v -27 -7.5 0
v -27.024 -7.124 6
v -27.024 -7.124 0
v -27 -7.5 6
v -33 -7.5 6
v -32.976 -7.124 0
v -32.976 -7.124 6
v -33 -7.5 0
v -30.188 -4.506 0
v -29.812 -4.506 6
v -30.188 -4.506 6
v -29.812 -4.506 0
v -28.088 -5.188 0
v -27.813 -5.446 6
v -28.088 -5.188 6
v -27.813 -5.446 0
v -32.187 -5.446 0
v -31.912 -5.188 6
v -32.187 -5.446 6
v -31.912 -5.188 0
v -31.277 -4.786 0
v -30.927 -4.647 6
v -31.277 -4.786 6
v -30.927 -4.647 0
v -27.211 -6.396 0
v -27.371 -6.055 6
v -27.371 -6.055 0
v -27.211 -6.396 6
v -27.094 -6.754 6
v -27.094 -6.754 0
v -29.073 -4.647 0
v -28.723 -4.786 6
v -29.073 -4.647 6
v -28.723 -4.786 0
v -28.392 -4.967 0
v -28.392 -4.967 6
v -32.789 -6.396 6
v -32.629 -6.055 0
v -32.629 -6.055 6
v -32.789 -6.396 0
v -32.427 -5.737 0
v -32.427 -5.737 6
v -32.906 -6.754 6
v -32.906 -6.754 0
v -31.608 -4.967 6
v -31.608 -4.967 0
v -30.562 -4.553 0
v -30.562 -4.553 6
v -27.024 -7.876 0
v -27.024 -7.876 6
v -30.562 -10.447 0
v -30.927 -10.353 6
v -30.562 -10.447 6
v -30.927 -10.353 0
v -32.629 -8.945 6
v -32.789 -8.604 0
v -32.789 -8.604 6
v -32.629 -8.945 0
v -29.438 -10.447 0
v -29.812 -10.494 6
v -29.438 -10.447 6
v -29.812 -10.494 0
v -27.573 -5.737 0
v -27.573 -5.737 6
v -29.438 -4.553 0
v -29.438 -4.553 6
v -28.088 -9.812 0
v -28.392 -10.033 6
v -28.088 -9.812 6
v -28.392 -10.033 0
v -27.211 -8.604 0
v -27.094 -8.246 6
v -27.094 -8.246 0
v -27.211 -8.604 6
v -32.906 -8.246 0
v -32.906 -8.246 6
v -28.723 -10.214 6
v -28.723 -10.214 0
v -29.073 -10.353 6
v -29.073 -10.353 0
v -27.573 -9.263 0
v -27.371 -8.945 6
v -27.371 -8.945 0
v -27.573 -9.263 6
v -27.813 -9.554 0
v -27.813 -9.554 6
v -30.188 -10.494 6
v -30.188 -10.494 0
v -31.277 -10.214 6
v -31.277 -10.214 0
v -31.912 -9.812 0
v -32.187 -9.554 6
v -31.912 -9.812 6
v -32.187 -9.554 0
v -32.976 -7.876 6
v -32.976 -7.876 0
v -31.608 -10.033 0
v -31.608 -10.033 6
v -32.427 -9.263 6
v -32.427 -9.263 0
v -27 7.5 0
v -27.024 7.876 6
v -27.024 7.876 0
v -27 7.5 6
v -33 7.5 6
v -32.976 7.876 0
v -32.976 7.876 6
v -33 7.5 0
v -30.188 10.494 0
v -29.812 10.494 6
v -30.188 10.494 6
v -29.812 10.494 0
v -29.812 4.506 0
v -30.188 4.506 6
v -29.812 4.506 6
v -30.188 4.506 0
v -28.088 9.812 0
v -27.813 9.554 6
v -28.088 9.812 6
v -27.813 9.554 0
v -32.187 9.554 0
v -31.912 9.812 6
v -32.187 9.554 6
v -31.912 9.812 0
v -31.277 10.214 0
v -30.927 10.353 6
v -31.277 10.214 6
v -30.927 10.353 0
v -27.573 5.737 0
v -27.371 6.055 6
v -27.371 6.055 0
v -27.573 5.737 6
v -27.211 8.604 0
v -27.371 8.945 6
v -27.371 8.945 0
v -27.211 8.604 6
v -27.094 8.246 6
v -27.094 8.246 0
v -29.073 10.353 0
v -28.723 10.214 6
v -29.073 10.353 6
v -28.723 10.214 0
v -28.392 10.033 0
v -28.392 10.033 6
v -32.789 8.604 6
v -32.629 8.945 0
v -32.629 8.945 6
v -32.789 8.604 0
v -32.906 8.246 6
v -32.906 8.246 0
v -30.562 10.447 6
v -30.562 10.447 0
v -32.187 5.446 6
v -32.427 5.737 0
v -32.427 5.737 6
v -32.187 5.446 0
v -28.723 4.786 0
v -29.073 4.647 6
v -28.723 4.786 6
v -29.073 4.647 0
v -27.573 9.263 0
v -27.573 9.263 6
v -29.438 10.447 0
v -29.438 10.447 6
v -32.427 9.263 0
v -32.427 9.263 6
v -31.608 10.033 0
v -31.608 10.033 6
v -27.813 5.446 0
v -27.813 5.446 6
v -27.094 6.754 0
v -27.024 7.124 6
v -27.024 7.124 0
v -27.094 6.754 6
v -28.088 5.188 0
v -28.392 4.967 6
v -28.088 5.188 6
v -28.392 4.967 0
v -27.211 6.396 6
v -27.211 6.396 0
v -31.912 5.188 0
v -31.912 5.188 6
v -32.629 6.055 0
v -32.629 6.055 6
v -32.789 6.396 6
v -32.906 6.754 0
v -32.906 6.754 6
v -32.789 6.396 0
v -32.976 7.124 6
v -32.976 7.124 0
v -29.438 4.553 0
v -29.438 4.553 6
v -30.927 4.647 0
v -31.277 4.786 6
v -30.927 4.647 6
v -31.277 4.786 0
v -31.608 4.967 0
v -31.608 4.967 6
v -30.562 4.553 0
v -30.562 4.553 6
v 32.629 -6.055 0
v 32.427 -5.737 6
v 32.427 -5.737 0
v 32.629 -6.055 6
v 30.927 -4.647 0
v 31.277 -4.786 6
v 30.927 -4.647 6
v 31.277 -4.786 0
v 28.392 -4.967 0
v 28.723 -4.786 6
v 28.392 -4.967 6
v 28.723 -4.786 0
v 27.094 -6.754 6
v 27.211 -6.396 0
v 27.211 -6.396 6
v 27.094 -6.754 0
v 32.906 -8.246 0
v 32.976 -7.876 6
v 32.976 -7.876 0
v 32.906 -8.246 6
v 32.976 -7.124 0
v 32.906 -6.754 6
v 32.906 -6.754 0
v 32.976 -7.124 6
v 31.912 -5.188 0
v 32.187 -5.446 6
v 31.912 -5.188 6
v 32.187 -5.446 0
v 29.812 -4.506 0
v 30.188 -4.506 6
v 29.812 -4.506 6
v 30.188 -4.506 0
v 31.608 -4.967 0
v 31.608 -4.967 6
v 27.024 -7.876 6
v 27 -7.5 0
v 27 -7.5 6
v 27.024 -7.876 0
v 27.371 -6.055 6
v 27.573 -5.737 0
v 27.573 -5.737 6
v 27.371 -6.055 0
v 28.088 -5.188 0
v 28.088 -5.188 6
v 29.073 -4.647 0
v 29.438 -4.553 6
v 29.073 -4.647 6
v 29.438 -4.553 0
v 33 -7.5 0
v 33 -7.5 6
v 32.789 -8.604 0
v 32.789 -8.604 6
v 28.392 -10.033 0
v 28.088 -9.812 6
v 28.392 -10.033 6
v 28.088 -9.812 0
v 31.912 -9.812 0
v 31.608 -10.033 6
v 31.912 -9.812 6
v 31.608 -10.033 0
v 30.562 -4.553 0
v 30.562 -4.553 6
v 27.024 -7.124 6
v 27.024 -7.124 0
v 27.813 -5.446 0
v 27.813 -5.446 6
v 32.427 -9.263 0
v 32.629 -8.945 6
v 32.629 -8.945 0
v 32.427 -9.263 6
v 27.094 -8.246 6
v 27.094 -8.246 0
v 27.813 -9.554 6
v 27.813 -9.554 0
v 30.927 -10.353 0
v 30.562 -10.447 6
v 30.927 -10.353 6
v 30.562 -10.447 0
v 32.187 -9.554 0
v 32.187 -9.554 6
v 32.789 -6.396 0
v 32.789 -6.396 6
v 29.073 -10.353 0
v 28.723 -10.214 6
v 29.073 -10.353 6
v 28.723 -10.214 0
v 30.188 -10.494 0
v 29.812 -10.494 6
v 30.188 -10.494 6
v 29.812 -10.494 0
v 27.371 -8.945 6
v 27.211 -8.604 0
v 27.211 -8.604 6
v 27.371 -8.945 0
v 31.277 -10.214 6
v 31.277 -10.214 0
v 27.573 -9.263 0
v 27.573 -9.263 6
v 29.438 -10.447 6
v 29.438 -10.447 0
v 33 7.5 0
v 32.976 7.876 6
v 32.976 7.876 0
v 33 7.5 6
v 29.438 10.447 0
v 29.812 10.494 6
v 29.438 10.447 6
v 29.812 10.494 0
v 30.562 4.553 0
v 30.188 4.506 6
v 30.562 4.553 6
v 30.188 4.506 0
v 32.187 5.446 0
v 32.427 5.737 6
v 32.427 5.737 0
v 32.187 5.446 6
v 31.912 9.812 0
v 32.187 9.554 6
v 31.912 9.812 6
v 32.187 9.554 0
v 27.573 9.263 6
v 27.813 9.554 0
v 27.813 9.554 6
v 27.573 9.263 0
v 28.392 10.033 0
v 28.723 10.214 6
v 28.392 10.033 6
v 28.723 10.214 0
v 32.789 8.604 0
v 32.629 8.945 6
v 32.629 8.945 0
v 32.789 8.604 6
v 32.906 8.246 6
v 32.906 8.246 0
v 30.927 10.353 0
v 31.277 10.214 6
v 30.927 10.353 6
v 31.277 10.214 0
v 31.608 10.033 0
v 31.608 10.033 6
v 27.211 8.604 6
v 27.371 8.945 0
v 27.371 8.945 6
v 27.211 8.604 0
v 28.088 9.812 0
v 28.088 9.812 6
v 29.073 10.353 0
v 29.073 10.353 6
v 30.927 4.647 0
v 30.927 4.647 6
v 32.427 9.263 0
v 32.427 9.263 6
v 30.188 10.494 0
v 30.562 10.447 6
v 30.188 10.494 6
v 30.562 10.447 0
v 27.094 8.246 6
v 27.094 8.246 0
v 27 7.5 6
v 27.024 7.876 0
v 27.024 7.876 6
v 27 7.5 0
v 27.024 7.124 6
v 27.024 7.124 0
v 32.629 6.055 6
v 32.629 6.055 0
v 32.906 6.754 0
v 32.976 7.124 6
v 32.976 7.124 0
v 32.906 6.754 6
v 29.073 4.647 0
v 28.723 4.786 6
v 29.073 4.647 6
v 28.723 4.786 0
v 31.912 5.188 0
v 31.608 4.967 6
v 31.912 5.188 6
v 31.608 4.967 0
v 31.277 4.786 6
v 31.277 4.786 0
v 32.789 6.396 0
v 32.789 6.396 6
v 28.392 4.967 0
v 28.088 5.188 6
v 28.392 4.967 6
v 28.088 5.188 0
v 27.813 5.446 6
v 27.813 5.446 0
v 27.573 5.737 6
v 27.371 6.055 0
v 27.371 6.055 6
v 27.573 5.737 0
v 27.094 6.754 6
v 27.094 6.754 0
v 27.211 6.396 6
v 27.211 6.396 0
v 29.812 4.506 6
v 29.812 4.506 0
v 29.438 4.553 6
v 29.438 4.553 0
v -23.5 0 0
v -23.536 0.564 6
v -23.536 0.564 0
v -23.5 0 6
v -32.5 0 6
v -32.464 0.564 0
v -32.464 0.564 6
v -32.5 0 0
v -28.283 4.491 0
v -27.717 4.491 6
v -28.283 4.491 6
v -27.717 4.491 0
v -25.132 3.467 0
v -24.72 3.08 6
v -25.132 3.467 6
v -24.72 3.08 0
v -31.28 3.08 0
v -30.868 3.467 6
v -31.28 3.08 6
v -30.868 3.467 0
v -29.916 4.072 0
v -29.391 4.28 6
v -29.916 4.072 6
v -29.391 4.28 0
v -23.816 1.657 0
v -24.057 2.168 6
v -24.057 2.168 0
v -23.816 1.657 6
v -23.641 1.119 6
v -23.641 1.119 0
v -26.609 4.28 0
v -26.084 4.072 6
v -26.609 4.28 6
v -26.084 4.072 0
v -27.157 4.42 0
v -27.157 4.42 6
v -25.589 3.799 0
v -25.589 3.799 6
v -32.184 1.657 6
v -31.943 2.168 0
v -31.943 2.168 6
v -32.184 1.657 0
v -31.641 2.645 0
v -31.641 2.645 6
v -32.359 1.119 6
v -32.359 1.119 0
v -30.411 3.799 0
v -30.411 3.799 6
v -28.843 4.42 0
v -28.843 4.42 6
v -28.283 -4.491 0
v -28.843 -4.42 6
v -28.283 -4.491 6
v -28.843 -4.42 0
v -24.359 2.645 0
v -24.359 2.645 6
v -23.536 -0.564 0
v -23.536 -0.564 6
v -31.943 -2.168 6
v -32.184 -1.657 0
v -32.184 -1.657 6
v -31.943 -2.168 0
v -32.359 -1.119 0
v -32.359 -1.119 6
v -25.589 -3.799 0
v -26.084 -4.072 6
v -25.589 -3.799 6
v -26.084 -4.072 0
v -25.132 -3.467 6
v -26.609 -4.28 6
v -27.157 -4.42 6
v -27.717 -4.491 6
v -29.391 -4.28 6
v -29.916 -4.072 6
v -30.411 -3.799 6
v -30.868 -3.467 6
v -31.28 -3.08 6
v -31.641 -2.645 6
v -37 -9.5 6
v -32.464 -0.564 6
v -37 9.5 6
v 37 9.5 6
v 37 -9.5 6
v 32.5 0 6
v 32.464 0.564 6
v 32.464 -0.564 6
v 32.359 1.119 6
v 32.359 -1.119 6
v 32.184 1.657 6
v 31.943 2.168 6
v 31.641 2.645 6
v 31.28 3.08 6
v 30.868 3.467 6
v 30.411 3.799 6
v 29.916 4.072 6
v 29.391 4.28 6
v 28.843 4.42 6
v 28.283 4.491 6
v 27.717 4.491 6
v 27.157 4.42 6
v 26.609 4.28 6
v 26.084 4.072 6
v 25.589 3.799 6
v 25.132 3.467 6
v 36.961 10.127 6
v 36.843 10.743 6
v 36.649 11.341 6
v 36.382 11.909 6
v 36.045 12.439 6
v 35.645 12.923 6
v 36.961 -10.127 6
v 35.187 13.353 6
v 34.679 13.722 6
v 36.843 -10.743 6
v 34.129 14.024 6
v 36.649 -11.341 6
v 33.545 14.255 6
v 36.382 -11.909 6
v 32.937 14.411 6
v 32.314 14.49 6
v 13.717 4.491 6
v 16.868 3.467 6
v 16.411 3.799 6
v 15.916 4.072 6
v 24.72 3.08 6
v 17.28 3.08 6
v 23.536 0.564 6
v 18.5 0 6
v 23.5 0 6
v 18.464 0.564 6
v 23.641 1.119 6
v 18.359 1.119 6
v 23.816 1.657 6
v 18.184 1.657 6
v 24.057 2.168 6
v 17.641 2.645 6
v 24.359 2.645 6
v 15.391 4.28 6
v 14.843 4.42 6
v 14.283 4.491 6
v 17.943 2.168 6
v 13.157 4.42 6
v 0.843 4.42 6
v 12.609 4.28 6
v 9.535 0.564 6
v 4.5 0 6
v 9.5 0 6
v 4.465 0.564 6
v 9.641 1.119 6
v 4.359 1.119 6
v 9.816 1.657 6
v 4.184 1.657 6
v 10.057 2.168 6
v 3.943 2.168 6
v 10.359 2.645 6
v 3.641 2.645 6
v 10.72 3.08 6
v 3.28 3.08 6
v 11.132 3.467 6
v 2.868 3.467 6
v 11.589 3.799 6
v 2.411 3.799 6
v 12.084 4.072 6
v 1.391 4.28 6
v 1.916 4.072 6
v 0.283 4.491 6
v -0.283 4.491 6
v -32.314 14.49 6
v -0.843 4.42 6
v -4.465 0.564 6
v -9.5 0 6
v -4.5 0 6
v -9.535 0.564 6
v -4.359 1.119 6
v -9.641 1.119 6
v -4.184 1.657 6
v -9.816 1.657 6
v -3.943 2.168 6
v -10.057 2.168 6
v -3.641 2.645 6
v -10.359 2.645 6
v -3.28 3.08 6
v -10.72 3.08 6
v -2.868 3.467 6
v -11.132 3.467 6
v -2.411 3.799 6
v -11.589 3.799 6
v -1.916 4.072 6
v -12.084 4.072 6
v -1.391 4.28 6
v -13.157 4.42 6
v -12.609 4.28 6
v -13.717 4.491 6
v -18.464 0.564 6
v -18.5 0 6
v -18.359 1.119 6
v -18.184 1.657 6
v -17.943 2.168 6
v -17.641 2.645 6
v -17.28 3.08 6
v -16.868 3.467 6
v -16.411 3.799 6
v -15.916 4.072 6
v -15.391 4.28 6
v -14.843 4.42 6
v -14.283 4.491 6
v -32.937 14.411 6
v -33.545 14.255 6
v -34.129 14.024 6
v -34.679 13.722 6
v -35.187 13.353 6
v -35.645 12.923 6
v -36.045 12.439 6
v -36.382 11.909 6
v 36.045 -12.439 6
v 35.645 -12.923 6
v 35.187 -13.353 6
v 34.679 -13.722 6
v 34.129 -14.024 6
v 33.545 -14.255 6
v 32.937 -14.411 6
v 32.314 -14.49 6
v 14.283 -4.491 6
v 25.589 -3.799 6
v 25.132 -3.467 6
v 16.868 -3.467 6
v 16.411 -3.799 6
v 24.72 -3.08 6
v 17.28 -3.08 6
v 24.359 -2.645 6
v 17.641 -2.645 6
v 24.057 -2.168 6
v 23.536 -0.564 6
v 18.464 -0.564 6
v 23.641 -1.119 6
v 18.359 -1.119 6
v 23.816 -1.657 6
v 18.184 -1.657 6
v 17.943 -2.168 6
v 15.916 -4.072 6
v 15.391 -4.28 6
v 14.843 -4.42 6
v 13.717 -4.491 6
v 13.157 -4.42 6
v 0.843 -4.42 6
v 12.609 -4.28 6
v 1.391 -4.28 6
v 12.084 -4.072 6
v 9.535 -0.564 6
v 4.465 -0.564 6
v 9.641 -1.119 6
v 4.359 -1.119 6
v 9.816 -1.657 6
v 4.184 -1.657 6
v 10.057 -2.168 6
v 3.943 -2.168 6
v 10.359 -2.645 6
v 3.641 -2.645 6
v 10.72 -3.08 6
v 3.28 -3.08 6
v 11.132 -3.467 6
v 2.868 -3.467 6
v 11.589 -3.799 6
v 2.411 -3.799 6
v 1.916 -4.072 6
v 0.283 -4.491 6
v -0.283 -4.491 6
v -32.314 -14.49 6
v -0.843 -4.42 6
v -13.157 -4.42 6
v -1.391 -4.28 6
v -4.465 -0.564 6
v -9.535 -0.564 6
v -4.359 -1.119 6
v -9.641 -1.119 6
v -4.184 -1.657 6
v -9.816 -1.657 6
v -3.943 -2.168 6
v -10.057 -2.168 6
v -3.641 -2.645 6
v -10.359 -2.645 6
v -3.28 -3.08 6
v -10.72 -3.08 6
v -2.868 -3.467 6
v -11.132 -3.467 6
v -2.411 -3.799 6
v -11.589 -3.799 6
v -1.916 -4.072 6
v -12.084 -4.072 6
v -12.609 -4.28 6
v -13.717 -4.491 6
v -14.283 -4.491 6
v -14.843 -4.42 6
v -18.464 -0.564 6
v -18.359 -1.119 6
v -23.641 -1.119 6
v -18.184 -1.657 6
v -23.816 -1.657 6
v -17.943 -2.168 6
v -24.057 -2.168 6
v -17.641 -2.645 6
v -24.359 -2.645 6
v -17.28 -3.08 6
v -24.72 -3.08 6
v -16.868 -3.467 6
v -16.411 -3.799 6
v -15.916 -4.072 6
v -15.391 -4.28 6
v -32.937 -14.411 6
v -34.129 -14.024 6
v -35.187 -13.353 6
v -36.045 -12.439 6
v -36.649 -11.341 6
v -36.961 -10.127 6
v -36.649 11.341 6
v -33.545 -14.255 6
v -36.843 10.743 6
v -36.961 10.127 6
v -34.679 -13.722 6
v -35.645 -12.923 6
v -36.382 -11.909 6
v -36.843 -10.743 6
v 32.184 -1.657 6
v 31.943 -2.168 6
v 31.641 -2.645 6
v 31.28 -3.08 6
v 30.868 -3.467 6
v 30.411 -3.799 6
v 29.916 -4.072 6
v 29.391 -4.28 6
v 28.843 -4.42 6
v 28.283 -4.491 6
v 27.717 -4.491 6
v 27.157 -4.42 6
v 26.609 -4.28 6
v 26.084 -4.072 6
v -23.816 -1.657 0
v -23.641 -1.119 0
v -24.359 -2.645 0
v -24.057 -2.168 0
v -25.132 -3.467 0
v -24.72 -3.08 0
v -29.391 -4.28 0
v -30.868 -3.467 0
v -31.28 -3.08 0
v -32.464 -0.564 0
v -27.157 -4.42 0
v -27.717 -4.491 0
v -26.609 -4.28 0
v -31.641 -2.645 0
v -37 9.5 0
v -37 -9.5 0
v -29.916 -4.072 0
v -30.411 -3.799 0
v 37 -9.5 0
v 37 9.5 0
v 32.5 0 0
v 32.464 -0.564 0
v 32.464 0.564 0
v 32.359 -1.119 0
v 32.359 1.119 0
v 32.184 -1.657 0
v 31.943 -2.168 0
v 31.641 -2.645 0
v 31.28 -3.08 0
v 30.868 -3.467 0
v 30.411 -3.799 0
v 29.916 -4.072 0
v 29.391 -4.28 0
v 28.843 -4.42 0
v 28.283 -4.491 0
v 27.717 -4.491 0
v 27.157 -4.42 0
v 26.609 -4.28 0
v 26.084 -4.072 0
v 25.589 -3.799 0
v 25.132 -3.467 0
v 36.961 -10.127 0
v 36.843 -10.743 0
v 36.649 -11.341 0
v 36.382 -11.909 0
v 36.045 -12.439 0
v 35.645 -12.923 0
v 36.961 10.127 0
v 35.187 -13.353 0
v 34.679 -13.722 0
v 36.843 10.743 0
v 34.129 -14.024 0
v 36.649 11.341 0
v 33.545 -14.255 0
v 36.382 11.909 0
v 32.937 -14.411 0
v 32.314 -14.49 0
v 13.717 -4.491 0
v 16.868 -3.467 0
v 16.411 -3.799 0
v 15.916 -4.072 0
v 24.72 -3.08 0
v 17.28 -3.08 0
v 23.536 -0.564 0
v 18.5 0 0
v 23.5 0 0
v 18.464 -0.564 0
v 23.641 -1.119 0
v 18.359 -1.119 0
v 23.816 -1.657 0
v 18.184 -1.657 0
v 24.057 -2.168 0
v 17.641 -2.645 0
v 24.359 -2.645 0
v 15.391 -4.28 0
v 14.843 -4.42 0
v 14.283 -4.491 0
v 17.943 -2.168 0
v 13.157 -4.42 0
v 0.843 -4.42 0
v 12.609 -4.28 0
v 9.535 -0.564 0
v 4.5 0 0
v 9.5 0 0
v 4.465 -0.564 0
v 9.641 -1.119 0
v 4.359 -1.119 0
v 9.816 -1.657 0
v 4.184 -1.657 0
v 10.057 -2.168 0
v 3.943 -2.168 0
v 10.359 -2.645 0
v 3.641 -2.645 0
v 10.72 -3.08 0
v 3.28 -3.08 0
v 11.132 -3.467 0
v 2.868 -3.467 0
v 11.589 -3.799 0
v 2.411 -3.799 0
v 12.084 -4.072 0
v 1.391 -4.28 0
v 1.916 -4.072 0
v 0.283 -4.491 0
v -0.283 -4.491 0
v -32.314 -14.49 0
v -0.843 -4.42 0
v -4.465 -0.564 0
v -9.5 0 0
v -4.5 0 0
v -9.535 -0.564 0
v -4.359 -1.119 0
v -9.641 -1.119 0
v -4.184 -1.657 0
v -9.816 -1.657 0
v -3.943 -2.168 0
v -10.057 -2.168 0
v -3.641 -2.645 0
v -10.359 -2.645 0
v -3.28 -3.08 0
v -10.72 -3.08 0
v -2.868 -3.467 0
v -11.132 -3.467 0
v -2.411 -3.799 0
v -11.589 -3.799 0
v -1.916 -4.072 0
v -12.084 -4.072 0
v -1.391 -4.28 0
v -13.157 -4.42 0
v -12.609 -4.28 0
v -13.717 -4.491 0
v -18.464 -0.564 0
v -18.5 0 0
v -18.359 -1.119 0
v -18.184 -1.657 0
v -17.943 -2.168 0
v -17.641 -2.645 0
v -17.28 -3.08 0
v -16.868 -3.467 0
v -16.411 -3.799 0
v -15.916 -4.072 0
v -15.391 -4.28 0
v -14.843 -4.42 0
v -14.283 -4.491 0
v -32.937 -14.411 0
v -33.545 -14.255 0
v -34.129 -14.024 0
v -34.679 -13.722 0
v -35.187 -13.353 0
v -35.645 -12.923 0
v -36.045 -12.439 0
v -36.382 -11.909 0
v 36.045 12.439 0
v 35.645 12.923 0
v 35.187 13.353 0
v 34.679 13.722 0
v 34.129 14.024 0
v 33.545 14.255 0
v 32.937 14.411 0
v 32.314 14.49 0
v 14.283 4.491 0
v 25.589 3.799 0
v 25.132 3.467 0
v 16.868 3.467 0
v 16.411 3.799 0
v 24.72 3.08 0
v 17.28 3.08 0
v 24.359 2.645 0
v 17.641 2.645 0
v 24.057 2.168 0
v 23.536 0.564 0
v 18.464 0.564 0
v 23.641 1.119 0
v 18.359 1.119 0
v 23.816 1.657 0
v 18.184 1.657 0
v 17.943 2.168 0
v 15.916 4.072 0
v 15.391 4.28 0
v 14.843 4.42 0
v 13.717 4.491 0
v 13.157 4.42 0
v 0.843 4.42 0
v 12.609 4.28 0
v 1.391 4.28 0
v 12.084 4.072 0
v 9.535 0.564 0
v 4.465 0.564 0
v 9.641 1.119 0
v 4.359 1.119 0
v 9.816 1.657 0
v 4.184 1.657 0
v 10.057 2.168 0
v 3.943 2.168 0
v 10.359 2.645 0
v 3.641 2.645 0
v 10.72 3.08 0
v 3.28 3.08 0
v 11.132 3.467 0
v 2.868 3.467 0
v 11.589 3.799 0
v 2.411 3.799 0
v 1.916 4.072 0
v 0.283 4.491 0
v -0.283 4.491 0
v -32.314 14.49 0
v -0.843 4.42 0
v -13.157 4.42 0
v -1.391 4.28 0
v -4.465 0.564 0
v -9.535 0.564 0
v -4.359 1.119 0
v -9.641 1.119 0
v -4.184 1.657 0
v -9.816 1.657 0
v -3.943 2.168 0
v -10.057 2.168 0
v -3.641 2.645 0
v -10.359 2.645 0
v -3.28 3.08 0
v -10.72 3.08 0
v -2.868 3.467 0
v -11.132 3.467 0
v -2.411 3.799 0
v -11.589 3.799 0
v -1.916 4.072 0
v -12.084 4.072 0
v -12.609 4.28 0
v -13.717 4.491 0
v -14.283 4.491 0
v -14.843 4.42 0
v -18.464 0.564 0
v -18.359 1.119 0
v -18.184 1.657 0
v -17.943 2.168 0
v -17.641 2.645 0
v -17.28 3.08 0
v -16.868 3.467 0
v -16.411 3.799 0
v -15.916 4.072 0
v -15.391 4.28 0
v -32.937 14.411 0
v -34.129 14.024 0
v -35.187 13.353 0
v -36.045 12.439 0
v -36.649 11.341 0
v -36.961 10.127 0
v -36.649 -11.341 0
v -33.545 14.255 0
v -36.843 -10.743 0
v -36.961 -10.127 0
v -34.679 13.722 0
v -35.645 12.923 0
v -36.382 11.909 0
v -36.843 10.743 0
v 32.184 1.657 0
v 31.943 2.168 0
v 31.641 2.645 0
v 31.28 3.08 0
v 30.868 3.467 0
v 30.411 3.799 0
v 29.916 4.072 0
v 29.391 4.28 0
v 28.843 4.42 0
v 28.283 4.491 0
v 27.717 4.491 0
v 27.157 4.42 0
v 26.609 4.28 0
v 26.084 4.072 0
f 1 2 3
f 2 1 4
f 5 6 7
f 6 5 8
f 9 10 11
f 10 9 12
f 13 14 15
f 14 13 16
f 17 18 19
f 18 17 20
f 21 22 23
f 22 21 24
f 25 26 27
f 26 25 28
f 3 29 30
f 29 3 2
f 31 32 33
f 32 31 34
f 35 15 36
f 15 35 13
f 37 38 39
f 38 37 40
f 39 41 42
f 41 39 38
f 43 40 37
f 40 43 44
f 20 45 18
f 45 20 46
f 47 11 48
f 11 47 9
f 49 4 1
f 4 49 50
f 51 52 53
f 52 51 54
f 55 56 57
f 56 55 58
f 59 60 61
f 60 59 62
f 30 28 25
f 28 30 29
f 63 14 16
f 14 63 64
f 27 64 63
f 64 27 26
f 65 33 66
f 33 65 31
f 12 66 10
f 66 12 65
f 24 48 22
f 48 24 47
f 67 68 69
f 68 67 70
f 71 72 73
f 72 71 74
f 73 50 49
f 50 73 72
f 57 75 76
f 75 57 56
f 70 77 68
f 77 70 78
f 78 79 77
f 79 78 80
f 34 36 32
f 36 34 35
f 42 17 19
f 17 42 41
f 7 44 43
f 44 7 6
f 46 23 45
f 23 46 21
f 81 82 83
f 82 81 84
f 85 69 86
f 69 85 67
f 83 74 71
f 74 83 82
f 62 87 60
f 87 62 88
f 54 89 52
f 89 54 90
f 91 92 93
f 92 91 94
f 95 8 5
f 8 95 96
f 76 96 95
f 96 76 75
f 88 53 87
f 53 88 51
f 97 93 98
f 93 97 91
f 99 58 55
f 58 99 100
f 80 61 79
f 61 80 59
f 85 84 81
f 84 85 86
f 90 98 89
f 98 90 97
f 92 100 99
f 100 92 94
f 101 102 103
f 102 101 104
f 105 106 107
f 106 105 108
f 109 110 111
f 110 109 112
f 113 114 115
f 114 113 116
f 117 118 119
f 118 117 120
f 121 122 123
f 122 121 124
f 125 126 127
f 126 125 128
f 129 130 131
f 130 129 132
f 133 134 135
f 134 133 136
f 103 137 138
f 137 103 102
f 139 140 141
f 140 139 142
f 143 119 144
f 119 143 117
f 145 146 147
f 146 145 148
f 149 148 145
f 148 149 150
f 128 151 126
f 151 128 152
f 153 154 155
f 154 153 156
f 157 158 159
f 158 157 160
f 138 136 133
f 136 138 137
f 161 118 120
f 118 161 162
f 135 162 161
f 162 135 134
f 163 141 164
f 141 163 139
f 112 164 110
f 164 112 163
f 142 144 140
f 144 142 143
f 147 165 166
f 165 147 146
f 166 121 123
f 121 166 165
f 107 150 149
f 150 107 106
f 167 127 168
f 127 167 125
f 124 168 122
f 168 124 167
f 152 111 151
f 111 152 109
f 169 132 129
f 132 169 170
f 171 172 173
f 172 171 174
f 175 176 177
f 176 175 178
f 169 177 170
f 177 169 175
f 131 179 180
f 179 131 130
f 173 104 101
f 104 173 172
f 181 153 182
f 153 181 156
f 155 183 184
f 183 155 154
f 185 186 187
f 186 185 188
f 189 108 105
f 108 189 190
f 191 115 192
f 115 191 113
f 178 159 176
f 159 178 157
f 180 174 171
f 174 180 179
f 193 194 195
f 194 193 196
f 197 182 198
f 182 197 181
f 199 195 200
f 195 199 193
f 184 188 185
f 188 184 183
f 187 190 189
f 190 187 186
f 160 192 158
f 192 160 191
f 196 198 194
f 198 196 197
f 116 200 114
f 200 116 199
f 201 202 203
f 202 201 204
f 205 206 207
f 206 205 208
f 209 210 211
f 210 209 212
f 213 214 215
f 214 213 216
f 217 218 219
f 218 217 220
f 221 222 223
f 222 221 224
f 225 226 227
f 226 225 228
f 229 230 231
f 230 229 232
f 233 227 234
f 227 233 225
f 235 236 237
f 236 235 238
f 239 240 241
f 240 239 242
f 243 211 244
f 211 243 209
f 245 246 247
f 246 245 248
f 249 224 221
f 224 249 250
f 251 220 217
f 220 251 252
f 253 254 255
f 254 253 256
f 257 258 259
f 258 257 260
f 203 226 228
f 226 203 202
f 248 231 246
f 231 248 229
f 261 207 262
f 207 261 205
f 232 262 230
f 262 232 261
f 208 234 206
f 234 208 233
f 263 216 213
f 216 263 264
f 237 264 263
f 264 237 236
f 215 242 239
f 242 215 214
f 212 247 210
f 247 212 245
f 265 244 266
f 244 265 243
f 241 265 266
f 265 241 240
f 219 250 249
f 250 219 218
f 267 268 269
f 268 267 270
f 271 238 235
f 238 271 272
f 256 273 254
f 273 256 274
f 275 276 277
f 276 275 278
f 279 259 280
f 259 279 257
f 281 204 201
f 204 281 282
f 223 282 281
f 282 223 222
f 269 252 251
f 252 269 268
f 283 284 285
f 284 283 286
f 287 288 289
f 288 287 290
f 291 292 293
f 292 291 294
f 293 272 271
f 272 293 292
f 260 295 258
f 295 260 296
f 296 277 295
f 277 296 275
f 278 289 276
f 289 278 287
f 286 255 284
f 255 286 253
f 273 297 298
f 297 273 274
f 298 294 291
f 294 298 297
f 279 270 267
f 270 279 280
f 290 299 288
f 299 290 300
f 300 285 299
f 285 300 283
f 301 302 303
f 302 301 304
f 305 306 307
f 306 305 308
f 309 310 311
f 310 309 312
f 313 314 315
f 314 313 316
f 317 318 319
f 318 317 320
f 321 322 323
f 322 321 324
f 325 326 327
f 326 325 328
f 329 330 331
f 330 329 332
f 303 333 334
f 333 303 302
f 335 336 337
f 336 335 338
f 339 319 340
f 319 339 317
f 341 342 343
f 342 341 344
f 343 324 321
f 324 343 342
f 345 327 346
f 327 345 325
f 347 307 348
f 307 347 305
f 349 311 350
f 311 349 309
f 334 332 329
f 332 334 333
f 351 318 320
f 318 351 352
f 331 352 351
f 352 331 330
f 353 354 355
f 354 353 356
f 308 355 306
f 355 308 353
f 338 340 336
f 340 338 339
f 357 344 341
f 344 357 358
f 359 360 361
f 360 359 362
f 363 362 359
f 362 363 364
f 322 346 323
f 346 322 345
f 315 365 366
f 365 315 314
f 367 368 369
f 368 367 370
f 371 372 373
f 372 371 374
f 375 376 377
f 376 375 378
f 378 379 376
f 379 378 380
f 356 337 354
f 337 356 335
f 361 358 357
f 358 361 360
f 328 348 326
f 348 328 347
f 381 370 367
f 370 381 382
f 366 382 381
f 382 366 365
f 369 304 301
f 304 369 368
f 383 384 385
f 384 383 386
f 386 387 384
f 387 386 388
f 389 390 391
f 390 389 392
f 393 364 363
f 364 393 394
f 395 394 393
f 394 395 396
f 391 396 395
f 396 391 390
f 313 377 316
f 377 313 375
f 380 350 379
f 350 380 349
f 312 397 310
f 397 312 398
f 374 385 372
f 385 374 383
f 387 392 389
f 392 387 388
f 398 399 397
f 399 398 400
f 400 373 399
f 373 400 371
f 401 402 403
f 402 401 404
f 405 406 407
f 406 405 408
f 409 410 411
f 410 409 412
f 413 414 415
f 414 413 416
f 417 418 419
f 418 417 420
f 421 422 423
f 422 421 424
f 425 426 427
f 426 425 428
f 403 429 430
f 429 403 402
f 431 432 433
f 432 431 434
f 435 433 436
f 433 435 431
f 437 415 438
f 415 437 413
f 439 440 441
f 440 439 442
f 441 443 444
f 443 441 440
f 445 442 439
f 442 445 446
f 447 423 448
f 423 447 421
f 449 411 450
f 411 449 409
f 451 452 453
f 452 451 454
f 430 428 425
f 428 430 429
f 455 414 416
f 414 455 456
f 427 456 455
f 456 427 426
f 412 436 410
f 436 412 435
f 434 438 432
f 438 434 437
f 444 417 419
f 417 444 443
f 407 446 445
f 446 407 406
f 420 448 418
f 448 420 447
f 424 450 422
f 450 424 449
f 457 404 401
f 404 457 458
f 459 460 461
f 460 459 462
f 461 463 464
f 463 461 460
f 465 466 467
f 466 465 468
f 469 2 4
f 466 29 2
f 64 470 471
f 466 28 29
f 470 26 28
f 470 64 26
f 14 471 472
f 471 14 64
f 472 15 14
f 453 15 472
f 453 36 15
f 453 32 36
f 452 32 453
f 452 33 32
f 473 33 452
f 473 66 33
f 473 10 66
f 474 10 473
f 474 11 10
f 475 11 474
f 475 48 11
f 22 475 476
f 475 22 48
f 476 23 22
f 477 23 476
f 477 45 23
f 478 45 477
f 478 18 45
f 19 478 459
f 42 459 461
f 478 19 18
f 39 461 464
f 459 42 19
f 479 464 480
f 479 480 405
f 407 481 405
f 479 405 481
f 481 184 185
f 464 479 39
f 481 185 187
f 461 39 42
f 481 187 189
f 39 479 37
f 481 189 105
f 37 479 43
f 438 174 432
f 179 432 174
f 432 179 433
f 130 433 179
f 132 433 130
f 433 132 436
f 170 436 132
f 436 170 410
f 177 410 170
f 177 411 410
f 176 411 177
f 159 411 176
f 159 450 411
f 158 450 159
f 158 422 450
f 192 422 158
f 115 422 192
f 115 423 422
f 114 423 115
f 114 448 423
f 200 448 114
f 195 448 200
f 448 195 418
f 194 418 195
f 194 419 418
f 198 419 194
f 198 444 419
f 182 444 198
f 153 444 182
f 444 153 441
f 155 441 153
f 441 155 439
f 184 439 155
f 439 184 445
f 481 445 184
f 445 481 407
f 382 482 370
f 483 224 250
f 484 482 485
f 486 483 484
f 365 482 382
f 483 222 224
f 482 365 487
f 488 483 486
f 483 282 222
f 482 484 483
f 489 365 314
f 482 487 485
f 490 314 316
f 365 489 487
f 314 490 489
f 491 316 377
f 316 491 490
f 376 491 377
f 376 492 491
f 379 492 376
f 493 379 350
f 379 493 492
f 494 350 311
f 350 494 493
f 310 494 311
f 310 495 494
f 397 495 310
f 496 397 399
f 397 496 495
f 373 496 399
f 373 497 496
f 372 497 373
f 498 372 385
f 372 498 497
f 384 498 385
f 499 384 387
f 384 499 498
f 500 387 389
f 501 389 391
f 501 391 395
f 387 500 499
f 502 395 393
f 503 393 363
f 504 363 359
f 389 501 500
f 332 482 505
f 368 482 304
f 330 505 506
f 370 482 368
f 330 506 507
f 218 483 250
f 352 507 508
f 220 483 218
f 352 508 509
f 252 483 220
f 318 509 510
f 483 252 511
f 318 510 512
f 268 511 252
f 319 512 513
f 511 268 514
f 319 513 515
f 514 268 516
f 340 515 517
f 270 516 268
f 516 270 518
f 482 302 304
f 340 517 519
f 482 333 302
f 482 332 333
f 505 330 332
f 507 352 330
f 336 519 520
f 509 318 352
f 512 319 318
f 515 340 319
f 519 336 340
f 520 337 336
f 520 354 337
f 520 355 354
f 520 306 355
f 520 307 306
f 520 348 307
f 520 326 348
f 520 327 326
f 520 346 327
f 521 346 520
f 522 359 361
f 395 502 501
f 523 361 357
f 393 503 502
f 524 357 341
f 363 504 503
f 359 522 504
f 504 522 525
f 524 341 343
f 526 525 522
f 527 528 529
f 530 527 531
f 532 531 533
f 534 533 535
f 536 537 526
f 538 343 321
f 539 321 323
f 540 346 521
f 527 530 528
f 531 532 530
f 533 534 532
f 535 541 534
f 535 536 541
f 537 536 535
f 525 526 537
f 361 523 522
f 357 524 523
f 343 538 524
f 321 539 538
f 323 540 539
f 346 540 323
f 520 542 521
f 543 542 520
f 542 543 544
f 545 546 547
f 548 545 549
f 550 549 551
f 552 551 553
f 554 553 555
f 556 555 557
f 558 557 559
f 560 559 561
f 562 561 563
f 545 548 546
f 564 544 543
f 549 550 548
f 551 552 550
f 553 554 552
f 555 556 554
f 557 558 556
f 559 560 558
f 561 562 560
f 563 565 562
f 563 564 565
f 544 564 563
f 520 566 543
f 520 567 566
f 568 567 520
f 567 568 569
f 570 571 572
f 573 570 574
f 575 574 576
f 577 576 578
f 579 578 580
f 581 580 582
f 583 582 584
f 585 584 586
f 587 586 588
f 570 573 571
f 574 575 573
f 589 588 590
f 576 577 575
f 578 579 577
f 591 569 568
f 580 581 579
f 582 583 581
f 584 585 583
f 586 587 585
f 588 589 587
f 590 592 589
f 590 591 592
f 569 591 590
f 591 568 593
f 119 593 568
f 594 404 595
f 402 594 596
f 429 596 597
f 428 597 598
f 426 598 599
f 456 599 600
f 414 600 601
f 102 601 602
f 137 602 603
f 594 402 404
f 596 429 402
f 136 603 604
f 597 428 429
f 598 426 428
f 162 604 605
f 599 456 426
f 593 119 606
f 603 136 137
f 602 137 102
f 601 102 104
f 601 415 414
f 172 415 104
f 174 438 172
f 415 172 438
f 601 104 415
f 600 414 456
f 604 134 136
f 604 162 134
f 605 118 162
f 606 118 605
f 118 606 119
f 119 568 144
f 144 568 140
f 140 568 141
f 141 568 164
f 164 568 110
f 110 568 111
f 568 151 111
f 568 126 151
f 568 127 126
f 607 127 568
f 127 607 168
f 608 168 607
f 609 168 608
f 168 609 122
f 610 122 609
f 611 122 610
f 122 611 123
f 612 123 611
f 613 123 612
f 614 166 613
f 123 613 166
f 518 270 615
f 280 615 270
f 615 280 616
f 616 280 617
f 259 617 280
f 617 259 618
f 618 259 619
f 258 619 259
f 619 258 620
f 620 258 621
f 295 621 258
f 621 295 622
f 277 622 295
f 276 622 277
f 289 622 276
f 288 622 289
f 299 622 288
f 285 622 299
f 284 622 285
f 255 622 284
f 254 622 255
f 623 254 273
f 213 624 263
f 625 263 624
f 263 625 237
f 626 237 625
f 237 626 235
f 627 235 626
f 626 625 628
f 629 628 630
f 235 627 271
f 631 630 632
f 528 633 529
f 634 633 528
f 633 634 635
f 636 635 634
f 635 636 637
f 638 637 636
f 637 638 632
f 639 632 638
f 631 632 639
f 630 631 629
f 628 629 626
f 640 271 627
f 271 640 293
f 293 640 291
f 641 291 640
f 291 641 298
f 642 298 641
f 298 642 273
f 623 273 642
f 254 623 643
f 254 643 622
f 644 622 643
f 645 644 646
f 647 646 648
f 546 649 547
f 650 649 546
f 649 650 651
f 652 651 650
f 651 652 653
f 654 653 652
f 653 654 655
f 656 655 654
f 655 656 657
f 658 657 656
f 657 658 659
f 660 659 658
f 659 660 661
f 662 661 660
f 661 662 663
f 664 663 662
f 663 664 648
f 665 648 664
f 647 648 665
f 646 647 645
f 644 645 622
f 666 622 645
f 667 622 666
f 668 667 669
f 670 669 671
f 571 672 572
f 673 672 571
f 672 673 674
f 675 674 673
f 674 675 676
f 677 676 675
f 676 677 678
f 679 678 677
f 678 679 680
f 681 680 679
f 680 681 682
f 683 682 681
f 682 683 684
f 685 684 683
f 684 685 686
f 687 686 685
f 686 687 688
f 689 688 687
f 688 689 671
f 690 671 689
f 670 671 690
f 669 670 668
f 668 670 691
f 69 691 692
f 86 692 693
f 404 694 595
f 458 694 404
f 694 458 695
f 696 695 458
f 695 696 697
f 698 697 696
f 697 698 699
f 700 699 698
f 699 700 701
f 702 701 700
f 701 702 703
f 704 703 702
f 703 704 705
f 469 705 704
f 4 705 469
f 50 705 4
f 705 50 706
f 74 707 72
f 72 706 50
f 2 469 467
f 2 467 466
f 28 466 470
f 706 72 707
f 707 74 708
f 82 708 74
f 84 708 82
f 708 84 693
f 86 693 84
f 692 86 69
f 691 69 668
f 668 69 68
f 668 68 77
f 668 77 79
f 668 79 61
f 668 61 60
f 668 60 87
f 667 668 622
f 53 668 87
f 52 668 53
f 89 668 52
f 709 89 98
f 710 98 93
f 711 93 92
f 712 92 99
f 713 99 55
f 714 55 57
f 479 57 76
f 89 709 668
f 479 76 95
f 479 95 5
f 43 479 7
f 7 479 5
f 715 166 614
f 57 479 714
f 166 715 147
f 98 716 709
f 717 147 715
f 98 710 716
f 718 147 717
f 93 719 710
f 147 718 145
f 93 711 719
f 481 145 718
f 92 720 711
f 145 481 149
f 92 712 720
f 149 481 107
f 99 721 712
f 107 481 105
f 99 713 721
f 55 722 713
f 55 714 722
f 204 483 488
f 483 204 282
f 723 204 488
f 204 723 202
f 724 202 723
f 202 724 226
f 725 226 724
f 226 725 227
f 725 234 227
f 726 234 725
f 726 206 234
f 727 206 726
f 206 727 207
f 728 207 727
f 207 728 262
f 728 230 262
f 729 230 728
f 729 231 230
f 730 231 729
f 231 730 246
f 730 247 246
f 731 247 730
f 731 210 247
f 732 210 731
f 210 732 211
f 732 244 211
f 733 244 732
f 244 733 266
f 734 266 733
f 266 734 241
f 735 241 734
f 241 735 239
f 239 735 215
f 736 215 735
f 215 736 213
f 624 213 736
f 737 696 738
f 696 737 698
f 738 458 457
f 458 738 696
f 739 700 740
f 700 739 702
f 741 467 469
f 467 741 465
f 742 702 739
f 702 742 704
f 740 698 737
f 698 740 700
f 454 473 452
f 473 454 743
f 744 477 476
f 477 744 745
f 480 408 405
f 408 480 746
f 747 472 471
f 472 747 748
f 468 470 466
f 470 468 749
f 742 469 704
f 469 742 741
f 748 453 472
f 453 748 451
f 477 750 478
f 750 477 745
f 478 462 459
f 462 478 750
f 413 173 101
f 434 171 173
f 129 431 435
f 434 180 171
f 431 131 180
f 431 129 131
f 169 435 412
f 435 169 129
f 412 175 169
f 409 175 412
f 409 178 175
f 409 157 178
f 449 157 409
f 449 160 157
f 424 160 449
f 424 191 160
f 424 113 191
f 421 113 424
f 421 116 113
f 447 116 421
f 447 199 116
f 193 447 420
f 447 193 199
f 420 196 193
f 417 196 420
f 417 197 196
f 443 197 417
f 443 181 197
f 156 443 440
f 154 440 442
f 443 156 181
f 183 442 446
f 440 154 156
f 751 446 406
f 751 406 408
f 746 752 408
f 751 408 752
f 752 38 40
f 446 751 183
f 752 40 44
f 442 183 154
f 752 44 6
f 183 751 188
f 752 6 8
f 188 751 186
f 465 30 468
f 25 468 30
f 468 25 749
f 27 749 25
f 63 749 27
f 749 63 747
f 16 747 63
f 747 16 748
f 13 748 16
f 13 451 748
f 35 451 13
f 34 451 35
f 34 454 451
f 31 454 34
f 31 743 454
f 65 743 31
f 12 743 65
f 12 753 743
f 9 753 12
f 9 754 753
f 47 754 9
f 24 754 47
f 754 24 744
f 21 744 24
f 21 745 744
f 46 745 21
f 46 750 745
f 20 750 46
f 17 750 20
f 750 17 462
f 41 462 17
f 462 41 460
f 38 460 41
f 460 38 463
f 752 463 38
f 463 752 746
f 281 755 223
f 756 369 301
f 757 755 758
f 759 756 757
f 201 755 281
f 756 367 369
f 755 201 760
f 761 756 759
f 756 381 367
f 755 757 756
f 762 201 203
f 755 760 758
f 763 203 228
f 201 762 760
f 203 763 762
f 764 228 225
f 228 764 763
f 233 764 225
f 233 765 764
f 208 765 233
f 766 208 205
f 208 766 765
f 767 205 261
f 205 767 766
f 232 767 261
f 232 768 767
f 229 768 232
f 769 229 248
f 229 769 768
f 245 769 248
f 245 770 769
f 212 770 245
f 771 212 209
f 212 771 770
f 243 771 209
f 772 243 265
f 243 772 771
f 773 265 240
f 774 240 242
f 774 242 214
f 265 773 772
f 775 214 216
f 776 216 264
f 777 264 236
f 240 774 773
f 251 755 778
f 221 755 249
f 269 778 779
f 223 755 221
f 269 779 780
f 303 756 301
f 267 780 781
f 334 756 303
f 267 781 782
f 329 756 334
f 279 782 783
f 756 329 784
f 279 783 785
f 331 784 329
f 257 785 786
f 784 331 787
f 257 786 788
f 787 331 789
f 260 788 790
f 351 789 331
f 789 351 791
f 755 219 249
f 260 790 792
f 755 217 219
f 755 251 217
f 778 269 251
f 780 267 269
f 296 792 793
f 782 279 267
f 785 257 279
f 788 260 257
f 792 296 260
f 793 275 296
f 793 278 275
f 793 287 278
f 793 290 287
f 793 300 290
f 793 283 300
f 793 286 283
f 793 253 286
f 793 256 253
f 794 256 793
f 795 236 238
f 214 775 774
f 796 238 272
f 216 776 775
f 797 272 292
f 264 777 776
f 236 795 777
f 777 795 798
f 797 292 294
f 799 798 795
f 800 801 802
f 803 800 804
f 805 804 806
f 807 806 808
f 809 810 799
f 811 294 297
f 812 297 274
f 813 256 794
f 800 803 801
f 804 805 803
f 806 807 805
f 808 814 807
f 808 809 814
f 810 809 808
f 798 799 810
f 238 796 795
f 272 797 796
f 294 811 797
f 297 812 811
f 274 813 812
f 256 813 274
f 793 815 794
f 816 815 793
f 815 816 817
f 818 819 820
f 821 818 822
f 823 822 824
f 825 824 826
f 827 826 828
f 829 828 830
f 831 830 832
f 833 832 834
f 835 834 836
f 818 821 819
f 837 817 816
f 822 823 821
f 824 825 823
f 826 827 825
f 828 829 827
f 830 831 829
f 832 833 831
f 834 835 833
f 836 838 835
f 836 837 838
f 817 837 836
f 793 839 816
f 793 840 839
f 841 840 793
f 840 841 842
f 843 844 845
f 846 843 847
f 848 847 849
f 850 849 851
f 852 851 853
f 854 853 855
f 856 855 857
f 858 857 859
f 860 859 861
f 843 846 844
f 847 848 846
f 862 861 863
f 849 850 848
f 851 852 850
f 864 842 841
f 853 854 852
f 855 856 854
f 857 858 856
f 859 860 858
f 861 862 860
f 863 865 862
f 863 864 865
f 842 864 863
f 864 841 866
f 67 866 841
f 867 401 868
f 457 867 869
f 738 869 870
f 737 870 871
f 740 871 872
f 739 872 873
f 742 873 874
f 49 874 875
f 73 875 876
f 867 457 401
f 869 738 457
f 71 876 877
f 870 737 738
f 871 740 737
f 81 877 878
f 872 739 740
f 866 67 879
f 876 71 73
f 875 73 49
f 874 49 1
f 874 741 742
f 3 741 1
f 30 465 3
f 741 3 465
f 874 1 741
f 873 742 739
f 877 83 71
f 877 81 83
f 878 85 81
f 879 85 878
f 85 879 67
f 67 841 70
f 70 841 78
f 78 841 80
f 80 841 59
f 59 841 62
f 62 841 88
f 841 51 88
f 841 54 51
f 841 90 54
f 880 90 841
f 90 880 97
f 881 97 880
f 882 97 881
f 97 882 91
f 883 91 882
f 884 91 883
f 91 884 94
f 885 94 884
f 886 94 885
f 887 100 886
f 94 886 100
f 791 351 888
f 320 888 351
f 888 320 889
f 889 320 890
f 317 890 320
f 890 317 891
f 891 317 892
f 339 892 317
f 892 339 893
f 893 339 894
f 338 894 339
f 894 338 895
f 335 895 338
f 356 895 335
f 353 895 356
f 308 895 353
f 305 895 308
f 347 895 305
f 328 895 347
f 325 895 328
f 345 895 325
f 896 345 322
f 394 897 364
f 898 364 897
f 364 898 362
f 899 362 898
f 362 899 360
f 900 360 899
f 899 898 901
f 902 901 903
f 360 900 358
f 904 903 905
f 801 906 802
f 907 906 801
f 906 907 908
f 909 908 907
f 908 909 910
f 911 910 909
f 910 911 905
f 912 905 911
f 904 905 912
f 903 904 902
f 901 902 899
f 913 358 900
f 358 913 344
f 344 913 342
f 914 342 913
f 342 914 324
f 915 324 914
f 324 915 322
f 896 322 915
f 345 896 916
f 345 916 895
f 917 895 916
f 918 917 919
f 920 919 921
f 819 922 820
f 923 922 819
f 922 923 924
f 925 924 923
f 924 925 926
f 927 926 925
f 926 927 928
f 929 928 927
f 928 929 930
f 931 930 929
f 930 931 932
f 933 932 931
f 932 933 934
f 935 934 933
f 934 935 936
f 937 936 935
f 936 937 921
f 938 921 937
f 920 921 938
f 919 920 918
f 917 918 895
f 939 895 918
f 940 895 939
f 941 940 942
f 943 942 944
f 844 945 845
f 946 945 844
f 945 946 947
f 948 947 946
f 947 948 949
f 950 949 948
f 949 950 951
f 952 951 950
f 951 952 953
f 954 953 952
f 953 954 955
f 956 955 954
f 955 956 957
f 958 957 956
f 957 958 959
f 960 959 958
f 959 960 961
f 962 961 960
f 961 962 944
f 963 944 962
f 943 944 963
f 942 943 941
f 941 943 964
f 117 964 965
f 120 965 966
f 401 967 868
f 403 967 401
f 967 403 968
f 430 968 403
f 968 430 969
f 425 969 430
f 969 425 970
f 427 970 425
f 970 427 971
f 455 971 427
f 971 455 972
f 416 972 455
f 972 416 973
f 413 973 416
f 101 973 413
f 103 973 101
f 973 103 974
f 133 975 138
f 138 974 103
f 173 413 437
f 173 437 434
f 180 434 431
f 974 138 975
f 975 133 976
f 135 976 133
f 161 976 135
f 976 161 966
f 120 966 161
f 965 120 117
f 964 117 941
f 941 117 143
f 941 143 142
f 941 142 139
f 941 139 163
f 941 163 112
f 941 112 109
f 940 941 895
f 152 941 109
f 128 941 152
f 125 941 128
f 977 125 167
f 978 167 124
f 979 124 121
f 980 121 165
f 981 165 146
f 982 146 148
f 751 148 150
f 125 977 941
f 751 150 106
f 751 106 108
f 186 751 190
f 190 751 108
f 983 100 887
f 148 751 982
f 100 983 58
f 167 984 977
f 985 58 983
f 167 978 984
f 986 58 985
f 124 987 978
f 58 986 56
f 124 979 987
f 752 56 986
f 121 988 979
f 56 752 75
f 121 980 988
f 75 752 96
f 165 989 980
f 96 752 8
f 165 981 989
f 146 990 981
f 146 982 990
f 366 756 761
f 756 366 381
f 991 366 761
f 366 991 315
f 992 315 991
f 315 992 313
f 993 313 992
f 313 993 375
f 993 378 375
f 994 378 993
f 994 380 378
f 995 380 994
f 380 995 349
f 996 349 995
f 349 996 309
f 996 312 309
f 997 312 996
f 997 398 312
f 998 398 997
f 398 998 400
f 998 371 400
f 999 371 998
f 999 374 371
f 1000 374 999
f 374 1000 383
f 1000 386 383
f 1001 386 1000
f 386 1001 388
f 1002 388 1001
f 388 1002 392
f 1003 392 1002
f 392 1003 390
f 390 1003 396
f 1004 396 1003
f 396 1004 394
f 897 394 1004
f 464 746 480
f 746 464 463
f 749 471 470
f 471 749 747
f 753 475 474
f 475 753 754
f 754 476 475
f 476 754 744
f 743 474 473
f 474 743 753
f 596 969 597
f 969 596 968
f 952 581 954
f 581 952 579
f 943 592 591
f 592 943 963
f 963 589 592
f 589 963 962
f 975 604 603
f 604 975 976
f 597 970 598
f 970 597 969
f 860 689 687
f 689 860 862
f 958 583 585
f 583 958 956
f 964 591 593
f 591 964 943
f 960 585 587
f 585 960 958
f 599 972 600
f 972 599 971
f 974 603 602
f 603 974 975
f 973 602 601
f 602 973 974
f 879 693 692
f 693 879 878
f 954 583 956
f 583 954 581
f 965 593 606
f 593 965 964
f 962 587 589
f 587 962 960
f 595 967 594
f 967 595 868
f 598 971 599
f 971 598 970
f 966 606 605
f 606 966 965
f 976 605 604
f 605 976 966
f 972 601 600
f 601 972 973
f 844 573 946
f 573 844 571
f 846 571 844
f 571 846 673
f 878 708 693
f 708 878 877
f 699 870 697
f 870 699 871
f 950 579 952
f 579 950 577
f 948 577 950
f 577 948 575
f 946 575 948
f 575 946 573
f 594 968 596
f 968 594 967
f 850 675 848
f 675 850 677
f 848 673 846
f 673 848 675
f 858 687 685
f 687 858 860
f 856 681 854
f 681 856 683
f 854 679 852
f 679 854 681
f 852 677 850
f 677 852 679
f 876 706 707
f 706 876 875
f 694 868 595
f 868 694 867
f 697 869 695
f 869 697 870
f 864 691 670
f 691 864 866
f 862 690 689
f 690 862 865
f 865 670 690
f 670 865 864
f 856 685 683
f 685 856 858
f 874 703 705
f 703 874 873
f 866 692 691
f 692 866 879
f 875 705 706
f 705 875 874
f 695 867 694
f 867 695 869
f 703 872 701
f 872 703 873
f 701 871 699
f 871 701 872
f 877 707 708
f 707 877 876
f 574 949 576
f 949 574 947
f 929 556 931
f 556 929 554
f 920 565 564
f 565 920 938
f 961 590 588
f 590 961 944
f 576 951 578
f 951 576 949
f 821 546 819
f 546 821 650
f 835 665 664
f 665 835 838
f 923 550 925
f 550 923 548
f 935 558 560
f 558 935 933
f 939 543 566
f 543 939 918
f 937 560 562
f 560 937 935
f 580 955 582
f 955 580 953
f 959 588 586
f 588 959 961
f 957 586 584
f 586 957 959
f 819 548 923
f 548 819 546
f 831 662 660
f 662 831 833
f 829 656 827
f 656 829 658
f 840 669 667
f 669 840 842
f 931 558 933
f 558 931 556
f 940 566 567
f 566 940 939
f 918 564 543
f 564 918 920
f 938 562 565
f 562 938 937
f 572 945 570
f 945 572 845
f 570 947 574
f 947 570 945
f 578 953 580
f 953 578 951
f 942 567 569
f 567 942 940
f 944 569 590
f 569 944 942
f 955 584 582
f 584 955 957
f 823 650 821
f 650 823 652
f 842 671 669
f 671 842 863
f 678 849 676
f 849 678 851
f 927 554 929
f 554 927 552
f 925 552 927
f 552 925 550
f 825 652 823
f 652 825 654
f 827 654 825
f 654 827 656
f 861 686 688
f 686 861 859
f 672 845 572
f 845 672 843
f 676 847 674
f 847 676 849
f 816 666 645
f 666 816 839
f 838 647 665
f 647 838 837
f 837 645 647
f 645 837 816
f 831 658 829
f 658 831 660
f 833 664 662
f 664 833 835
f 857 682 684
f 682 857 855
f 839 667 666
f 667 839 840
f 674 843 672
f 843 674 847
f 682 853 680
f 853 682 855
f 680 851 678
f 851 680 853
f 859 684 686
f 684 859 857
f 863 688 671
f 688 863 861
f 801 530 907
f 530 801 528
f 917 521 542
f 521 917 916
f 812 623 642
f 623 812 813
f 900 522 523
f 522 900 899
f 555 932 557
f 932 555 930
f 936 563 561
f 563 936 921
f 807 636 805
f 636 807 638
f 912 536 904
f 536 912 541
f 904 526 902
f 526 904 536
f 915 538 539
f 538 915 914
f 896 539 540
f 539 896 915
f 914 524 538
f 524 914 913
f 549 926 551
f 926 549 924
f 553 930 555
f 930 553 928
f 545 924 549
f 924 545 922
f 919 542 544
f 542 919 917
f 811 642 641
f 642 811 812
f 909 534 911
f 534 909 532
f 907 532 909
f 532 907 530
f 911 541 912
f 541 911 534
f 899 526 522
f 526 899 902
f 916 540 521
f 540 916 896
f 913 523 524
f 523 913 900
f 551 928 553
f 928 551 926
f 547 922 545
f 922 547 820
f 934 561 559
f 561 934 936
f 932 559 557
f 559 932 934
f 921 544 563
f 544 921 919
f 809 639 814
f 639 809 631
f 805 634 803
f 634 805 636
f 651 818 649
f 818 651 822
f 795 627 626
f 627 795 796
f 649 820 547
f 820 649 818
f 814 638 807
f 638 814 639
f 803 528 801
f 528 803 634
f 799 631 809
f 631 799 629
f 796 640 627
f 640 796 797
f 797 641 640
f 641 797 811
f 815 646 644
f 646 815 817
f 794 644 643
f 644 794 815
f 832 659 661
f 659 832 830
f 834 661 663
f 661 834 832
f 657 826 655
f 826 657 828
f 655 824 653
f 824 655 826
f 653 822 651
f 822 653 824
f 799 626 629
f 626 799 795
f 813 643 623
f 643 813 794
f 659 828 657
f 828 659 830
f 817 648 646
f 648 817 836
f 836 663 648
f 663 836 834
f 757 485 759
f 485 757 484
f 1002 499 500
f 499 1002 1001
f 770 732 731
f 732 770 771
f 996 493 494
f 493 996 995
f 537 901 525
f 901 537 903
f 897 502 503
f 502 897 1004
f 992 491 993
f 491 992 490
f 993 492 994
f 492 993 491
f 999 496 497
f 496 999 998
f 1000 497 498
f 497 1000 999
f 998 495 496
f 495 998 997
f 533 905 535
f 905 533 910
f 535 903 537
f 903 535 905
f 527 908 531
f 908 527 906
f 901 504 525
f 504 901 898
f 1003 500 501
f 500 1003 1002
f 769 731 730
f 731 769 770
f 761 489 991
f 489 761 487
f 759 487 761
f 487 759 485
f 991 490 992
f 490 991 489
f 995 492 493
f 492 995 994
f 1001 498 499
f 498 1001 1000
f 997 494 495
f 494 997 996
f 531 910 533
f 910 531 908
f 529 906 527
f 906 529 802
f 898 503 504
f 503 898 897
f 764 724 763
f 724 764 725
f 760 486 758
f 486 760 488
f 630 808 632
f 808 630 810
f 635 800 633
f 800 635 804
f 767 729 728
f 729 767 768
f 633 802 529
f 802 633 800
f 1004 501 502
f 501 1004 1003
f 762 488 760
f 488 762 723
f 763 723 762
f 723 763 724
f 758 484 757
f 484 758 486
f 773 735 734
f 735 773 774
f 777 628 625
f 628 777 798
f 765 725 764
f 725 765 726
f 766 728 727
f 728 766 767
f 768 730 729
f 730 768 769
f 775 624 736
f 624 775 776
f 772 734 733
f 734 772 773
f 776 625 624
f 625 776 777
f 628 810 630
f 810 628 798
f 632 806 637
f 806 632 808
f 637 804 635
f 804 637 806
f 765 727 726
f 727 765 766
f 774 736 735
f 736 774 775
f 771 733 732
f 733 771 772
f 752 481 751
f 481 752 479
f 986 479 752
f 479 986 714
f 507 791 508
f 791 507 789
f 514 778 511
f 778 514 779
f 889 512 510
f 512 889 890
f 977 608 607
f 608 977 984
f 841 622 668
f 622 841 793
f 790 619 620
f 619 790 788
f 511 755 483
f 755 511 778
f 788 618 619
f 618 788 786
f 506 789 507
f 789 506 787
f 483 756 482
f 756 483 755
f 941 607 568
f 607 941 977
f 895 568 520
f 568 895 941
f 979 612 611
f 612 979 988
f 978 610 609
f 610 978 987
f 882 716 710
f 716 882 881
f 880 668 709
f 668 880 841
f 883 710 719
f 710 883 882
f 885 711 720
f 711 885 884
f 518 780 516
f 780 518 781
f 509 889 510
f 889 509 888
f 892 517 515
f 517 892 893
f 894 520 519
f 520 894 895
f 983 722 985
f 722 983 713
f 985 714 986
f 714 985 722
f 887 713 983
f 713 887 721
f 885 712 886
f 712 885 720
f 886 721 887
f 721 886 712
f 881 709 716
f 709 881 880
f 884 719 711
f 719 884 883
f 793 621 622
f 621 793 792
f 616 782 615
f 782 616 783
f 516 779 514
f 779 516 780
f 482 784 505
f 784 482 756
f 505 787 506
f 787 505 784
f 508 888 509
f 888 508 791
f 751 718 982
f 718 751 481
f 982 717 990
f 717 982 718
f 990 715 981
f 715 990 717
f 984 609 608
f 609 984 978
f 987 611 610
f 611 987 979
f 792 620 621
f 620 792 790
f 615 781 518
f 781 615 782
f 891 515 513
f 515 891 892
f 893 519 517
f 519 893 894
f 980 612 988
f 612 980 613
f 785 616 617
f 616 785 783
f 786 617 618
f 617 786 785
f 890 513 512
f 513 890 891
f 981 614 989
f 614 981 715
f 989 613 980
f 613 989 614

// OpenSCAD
$fn = 50;


difference() {
	union() {
		hull() {
			translate(v = [-32.0000000000, 9.5000000000, 0]) {
				cylinder(h = 6, r = 5);
			}
			translate(v = [32.0000000000, 9.5000000000, 0]) {
				cylinder(h = 6, r = 5);
			}
			translate(v = [-32.0000000000, -9.5000000000, 0]) {
				cylinder(h = 6, r = 5);
			}
			translate(v = [32.0000000000, -9.5000000000, 0]) {
				cylinder(h = 6, r = 5);
			}
		}
	}
	union() {
		#translate(v = [-30.0000000000, -7.5000000000, -100.0000000000]) {
			cylinder(h = 200, r = 3.0000000000);
		}
		#translate(v = [-30.0000000000, 7.5000000000, -100.0000000000]) {
			cylinder(h = 200, r = 3.0000000000);
		}
		#translate(v = [30.0000000000, -7.5000000000, -100.0000000000]) {
			cylinder(h = 200, r = 3.0000000000);
		}
		#translate(v = [30.0000000000, 7.5000000000, -100.0000000000]) {
			cylinder(h = 200, r = 3.0000000000);
		}
		#translate(v = [-28.0000000000, 0, 0]) {
			cylinder(h = 6, r = 4.5000000000);
		}
		#translate(v = [-14.0000000000, 0, 0]) {
			cylinder(h = 6, r = 4.5000000000);
		}
		#cylinder(h = 6, r = 4.5000000000);
		#translate(v = [14.0000000000, 0, 0]) {
			cylinder(h = 6, r = 4.5000000000);
		}
		#translate(v = [28.0000000000, 0, 0]) {
			cylinder(h = 6, r = 4.5000000000);
		}
	}
}
